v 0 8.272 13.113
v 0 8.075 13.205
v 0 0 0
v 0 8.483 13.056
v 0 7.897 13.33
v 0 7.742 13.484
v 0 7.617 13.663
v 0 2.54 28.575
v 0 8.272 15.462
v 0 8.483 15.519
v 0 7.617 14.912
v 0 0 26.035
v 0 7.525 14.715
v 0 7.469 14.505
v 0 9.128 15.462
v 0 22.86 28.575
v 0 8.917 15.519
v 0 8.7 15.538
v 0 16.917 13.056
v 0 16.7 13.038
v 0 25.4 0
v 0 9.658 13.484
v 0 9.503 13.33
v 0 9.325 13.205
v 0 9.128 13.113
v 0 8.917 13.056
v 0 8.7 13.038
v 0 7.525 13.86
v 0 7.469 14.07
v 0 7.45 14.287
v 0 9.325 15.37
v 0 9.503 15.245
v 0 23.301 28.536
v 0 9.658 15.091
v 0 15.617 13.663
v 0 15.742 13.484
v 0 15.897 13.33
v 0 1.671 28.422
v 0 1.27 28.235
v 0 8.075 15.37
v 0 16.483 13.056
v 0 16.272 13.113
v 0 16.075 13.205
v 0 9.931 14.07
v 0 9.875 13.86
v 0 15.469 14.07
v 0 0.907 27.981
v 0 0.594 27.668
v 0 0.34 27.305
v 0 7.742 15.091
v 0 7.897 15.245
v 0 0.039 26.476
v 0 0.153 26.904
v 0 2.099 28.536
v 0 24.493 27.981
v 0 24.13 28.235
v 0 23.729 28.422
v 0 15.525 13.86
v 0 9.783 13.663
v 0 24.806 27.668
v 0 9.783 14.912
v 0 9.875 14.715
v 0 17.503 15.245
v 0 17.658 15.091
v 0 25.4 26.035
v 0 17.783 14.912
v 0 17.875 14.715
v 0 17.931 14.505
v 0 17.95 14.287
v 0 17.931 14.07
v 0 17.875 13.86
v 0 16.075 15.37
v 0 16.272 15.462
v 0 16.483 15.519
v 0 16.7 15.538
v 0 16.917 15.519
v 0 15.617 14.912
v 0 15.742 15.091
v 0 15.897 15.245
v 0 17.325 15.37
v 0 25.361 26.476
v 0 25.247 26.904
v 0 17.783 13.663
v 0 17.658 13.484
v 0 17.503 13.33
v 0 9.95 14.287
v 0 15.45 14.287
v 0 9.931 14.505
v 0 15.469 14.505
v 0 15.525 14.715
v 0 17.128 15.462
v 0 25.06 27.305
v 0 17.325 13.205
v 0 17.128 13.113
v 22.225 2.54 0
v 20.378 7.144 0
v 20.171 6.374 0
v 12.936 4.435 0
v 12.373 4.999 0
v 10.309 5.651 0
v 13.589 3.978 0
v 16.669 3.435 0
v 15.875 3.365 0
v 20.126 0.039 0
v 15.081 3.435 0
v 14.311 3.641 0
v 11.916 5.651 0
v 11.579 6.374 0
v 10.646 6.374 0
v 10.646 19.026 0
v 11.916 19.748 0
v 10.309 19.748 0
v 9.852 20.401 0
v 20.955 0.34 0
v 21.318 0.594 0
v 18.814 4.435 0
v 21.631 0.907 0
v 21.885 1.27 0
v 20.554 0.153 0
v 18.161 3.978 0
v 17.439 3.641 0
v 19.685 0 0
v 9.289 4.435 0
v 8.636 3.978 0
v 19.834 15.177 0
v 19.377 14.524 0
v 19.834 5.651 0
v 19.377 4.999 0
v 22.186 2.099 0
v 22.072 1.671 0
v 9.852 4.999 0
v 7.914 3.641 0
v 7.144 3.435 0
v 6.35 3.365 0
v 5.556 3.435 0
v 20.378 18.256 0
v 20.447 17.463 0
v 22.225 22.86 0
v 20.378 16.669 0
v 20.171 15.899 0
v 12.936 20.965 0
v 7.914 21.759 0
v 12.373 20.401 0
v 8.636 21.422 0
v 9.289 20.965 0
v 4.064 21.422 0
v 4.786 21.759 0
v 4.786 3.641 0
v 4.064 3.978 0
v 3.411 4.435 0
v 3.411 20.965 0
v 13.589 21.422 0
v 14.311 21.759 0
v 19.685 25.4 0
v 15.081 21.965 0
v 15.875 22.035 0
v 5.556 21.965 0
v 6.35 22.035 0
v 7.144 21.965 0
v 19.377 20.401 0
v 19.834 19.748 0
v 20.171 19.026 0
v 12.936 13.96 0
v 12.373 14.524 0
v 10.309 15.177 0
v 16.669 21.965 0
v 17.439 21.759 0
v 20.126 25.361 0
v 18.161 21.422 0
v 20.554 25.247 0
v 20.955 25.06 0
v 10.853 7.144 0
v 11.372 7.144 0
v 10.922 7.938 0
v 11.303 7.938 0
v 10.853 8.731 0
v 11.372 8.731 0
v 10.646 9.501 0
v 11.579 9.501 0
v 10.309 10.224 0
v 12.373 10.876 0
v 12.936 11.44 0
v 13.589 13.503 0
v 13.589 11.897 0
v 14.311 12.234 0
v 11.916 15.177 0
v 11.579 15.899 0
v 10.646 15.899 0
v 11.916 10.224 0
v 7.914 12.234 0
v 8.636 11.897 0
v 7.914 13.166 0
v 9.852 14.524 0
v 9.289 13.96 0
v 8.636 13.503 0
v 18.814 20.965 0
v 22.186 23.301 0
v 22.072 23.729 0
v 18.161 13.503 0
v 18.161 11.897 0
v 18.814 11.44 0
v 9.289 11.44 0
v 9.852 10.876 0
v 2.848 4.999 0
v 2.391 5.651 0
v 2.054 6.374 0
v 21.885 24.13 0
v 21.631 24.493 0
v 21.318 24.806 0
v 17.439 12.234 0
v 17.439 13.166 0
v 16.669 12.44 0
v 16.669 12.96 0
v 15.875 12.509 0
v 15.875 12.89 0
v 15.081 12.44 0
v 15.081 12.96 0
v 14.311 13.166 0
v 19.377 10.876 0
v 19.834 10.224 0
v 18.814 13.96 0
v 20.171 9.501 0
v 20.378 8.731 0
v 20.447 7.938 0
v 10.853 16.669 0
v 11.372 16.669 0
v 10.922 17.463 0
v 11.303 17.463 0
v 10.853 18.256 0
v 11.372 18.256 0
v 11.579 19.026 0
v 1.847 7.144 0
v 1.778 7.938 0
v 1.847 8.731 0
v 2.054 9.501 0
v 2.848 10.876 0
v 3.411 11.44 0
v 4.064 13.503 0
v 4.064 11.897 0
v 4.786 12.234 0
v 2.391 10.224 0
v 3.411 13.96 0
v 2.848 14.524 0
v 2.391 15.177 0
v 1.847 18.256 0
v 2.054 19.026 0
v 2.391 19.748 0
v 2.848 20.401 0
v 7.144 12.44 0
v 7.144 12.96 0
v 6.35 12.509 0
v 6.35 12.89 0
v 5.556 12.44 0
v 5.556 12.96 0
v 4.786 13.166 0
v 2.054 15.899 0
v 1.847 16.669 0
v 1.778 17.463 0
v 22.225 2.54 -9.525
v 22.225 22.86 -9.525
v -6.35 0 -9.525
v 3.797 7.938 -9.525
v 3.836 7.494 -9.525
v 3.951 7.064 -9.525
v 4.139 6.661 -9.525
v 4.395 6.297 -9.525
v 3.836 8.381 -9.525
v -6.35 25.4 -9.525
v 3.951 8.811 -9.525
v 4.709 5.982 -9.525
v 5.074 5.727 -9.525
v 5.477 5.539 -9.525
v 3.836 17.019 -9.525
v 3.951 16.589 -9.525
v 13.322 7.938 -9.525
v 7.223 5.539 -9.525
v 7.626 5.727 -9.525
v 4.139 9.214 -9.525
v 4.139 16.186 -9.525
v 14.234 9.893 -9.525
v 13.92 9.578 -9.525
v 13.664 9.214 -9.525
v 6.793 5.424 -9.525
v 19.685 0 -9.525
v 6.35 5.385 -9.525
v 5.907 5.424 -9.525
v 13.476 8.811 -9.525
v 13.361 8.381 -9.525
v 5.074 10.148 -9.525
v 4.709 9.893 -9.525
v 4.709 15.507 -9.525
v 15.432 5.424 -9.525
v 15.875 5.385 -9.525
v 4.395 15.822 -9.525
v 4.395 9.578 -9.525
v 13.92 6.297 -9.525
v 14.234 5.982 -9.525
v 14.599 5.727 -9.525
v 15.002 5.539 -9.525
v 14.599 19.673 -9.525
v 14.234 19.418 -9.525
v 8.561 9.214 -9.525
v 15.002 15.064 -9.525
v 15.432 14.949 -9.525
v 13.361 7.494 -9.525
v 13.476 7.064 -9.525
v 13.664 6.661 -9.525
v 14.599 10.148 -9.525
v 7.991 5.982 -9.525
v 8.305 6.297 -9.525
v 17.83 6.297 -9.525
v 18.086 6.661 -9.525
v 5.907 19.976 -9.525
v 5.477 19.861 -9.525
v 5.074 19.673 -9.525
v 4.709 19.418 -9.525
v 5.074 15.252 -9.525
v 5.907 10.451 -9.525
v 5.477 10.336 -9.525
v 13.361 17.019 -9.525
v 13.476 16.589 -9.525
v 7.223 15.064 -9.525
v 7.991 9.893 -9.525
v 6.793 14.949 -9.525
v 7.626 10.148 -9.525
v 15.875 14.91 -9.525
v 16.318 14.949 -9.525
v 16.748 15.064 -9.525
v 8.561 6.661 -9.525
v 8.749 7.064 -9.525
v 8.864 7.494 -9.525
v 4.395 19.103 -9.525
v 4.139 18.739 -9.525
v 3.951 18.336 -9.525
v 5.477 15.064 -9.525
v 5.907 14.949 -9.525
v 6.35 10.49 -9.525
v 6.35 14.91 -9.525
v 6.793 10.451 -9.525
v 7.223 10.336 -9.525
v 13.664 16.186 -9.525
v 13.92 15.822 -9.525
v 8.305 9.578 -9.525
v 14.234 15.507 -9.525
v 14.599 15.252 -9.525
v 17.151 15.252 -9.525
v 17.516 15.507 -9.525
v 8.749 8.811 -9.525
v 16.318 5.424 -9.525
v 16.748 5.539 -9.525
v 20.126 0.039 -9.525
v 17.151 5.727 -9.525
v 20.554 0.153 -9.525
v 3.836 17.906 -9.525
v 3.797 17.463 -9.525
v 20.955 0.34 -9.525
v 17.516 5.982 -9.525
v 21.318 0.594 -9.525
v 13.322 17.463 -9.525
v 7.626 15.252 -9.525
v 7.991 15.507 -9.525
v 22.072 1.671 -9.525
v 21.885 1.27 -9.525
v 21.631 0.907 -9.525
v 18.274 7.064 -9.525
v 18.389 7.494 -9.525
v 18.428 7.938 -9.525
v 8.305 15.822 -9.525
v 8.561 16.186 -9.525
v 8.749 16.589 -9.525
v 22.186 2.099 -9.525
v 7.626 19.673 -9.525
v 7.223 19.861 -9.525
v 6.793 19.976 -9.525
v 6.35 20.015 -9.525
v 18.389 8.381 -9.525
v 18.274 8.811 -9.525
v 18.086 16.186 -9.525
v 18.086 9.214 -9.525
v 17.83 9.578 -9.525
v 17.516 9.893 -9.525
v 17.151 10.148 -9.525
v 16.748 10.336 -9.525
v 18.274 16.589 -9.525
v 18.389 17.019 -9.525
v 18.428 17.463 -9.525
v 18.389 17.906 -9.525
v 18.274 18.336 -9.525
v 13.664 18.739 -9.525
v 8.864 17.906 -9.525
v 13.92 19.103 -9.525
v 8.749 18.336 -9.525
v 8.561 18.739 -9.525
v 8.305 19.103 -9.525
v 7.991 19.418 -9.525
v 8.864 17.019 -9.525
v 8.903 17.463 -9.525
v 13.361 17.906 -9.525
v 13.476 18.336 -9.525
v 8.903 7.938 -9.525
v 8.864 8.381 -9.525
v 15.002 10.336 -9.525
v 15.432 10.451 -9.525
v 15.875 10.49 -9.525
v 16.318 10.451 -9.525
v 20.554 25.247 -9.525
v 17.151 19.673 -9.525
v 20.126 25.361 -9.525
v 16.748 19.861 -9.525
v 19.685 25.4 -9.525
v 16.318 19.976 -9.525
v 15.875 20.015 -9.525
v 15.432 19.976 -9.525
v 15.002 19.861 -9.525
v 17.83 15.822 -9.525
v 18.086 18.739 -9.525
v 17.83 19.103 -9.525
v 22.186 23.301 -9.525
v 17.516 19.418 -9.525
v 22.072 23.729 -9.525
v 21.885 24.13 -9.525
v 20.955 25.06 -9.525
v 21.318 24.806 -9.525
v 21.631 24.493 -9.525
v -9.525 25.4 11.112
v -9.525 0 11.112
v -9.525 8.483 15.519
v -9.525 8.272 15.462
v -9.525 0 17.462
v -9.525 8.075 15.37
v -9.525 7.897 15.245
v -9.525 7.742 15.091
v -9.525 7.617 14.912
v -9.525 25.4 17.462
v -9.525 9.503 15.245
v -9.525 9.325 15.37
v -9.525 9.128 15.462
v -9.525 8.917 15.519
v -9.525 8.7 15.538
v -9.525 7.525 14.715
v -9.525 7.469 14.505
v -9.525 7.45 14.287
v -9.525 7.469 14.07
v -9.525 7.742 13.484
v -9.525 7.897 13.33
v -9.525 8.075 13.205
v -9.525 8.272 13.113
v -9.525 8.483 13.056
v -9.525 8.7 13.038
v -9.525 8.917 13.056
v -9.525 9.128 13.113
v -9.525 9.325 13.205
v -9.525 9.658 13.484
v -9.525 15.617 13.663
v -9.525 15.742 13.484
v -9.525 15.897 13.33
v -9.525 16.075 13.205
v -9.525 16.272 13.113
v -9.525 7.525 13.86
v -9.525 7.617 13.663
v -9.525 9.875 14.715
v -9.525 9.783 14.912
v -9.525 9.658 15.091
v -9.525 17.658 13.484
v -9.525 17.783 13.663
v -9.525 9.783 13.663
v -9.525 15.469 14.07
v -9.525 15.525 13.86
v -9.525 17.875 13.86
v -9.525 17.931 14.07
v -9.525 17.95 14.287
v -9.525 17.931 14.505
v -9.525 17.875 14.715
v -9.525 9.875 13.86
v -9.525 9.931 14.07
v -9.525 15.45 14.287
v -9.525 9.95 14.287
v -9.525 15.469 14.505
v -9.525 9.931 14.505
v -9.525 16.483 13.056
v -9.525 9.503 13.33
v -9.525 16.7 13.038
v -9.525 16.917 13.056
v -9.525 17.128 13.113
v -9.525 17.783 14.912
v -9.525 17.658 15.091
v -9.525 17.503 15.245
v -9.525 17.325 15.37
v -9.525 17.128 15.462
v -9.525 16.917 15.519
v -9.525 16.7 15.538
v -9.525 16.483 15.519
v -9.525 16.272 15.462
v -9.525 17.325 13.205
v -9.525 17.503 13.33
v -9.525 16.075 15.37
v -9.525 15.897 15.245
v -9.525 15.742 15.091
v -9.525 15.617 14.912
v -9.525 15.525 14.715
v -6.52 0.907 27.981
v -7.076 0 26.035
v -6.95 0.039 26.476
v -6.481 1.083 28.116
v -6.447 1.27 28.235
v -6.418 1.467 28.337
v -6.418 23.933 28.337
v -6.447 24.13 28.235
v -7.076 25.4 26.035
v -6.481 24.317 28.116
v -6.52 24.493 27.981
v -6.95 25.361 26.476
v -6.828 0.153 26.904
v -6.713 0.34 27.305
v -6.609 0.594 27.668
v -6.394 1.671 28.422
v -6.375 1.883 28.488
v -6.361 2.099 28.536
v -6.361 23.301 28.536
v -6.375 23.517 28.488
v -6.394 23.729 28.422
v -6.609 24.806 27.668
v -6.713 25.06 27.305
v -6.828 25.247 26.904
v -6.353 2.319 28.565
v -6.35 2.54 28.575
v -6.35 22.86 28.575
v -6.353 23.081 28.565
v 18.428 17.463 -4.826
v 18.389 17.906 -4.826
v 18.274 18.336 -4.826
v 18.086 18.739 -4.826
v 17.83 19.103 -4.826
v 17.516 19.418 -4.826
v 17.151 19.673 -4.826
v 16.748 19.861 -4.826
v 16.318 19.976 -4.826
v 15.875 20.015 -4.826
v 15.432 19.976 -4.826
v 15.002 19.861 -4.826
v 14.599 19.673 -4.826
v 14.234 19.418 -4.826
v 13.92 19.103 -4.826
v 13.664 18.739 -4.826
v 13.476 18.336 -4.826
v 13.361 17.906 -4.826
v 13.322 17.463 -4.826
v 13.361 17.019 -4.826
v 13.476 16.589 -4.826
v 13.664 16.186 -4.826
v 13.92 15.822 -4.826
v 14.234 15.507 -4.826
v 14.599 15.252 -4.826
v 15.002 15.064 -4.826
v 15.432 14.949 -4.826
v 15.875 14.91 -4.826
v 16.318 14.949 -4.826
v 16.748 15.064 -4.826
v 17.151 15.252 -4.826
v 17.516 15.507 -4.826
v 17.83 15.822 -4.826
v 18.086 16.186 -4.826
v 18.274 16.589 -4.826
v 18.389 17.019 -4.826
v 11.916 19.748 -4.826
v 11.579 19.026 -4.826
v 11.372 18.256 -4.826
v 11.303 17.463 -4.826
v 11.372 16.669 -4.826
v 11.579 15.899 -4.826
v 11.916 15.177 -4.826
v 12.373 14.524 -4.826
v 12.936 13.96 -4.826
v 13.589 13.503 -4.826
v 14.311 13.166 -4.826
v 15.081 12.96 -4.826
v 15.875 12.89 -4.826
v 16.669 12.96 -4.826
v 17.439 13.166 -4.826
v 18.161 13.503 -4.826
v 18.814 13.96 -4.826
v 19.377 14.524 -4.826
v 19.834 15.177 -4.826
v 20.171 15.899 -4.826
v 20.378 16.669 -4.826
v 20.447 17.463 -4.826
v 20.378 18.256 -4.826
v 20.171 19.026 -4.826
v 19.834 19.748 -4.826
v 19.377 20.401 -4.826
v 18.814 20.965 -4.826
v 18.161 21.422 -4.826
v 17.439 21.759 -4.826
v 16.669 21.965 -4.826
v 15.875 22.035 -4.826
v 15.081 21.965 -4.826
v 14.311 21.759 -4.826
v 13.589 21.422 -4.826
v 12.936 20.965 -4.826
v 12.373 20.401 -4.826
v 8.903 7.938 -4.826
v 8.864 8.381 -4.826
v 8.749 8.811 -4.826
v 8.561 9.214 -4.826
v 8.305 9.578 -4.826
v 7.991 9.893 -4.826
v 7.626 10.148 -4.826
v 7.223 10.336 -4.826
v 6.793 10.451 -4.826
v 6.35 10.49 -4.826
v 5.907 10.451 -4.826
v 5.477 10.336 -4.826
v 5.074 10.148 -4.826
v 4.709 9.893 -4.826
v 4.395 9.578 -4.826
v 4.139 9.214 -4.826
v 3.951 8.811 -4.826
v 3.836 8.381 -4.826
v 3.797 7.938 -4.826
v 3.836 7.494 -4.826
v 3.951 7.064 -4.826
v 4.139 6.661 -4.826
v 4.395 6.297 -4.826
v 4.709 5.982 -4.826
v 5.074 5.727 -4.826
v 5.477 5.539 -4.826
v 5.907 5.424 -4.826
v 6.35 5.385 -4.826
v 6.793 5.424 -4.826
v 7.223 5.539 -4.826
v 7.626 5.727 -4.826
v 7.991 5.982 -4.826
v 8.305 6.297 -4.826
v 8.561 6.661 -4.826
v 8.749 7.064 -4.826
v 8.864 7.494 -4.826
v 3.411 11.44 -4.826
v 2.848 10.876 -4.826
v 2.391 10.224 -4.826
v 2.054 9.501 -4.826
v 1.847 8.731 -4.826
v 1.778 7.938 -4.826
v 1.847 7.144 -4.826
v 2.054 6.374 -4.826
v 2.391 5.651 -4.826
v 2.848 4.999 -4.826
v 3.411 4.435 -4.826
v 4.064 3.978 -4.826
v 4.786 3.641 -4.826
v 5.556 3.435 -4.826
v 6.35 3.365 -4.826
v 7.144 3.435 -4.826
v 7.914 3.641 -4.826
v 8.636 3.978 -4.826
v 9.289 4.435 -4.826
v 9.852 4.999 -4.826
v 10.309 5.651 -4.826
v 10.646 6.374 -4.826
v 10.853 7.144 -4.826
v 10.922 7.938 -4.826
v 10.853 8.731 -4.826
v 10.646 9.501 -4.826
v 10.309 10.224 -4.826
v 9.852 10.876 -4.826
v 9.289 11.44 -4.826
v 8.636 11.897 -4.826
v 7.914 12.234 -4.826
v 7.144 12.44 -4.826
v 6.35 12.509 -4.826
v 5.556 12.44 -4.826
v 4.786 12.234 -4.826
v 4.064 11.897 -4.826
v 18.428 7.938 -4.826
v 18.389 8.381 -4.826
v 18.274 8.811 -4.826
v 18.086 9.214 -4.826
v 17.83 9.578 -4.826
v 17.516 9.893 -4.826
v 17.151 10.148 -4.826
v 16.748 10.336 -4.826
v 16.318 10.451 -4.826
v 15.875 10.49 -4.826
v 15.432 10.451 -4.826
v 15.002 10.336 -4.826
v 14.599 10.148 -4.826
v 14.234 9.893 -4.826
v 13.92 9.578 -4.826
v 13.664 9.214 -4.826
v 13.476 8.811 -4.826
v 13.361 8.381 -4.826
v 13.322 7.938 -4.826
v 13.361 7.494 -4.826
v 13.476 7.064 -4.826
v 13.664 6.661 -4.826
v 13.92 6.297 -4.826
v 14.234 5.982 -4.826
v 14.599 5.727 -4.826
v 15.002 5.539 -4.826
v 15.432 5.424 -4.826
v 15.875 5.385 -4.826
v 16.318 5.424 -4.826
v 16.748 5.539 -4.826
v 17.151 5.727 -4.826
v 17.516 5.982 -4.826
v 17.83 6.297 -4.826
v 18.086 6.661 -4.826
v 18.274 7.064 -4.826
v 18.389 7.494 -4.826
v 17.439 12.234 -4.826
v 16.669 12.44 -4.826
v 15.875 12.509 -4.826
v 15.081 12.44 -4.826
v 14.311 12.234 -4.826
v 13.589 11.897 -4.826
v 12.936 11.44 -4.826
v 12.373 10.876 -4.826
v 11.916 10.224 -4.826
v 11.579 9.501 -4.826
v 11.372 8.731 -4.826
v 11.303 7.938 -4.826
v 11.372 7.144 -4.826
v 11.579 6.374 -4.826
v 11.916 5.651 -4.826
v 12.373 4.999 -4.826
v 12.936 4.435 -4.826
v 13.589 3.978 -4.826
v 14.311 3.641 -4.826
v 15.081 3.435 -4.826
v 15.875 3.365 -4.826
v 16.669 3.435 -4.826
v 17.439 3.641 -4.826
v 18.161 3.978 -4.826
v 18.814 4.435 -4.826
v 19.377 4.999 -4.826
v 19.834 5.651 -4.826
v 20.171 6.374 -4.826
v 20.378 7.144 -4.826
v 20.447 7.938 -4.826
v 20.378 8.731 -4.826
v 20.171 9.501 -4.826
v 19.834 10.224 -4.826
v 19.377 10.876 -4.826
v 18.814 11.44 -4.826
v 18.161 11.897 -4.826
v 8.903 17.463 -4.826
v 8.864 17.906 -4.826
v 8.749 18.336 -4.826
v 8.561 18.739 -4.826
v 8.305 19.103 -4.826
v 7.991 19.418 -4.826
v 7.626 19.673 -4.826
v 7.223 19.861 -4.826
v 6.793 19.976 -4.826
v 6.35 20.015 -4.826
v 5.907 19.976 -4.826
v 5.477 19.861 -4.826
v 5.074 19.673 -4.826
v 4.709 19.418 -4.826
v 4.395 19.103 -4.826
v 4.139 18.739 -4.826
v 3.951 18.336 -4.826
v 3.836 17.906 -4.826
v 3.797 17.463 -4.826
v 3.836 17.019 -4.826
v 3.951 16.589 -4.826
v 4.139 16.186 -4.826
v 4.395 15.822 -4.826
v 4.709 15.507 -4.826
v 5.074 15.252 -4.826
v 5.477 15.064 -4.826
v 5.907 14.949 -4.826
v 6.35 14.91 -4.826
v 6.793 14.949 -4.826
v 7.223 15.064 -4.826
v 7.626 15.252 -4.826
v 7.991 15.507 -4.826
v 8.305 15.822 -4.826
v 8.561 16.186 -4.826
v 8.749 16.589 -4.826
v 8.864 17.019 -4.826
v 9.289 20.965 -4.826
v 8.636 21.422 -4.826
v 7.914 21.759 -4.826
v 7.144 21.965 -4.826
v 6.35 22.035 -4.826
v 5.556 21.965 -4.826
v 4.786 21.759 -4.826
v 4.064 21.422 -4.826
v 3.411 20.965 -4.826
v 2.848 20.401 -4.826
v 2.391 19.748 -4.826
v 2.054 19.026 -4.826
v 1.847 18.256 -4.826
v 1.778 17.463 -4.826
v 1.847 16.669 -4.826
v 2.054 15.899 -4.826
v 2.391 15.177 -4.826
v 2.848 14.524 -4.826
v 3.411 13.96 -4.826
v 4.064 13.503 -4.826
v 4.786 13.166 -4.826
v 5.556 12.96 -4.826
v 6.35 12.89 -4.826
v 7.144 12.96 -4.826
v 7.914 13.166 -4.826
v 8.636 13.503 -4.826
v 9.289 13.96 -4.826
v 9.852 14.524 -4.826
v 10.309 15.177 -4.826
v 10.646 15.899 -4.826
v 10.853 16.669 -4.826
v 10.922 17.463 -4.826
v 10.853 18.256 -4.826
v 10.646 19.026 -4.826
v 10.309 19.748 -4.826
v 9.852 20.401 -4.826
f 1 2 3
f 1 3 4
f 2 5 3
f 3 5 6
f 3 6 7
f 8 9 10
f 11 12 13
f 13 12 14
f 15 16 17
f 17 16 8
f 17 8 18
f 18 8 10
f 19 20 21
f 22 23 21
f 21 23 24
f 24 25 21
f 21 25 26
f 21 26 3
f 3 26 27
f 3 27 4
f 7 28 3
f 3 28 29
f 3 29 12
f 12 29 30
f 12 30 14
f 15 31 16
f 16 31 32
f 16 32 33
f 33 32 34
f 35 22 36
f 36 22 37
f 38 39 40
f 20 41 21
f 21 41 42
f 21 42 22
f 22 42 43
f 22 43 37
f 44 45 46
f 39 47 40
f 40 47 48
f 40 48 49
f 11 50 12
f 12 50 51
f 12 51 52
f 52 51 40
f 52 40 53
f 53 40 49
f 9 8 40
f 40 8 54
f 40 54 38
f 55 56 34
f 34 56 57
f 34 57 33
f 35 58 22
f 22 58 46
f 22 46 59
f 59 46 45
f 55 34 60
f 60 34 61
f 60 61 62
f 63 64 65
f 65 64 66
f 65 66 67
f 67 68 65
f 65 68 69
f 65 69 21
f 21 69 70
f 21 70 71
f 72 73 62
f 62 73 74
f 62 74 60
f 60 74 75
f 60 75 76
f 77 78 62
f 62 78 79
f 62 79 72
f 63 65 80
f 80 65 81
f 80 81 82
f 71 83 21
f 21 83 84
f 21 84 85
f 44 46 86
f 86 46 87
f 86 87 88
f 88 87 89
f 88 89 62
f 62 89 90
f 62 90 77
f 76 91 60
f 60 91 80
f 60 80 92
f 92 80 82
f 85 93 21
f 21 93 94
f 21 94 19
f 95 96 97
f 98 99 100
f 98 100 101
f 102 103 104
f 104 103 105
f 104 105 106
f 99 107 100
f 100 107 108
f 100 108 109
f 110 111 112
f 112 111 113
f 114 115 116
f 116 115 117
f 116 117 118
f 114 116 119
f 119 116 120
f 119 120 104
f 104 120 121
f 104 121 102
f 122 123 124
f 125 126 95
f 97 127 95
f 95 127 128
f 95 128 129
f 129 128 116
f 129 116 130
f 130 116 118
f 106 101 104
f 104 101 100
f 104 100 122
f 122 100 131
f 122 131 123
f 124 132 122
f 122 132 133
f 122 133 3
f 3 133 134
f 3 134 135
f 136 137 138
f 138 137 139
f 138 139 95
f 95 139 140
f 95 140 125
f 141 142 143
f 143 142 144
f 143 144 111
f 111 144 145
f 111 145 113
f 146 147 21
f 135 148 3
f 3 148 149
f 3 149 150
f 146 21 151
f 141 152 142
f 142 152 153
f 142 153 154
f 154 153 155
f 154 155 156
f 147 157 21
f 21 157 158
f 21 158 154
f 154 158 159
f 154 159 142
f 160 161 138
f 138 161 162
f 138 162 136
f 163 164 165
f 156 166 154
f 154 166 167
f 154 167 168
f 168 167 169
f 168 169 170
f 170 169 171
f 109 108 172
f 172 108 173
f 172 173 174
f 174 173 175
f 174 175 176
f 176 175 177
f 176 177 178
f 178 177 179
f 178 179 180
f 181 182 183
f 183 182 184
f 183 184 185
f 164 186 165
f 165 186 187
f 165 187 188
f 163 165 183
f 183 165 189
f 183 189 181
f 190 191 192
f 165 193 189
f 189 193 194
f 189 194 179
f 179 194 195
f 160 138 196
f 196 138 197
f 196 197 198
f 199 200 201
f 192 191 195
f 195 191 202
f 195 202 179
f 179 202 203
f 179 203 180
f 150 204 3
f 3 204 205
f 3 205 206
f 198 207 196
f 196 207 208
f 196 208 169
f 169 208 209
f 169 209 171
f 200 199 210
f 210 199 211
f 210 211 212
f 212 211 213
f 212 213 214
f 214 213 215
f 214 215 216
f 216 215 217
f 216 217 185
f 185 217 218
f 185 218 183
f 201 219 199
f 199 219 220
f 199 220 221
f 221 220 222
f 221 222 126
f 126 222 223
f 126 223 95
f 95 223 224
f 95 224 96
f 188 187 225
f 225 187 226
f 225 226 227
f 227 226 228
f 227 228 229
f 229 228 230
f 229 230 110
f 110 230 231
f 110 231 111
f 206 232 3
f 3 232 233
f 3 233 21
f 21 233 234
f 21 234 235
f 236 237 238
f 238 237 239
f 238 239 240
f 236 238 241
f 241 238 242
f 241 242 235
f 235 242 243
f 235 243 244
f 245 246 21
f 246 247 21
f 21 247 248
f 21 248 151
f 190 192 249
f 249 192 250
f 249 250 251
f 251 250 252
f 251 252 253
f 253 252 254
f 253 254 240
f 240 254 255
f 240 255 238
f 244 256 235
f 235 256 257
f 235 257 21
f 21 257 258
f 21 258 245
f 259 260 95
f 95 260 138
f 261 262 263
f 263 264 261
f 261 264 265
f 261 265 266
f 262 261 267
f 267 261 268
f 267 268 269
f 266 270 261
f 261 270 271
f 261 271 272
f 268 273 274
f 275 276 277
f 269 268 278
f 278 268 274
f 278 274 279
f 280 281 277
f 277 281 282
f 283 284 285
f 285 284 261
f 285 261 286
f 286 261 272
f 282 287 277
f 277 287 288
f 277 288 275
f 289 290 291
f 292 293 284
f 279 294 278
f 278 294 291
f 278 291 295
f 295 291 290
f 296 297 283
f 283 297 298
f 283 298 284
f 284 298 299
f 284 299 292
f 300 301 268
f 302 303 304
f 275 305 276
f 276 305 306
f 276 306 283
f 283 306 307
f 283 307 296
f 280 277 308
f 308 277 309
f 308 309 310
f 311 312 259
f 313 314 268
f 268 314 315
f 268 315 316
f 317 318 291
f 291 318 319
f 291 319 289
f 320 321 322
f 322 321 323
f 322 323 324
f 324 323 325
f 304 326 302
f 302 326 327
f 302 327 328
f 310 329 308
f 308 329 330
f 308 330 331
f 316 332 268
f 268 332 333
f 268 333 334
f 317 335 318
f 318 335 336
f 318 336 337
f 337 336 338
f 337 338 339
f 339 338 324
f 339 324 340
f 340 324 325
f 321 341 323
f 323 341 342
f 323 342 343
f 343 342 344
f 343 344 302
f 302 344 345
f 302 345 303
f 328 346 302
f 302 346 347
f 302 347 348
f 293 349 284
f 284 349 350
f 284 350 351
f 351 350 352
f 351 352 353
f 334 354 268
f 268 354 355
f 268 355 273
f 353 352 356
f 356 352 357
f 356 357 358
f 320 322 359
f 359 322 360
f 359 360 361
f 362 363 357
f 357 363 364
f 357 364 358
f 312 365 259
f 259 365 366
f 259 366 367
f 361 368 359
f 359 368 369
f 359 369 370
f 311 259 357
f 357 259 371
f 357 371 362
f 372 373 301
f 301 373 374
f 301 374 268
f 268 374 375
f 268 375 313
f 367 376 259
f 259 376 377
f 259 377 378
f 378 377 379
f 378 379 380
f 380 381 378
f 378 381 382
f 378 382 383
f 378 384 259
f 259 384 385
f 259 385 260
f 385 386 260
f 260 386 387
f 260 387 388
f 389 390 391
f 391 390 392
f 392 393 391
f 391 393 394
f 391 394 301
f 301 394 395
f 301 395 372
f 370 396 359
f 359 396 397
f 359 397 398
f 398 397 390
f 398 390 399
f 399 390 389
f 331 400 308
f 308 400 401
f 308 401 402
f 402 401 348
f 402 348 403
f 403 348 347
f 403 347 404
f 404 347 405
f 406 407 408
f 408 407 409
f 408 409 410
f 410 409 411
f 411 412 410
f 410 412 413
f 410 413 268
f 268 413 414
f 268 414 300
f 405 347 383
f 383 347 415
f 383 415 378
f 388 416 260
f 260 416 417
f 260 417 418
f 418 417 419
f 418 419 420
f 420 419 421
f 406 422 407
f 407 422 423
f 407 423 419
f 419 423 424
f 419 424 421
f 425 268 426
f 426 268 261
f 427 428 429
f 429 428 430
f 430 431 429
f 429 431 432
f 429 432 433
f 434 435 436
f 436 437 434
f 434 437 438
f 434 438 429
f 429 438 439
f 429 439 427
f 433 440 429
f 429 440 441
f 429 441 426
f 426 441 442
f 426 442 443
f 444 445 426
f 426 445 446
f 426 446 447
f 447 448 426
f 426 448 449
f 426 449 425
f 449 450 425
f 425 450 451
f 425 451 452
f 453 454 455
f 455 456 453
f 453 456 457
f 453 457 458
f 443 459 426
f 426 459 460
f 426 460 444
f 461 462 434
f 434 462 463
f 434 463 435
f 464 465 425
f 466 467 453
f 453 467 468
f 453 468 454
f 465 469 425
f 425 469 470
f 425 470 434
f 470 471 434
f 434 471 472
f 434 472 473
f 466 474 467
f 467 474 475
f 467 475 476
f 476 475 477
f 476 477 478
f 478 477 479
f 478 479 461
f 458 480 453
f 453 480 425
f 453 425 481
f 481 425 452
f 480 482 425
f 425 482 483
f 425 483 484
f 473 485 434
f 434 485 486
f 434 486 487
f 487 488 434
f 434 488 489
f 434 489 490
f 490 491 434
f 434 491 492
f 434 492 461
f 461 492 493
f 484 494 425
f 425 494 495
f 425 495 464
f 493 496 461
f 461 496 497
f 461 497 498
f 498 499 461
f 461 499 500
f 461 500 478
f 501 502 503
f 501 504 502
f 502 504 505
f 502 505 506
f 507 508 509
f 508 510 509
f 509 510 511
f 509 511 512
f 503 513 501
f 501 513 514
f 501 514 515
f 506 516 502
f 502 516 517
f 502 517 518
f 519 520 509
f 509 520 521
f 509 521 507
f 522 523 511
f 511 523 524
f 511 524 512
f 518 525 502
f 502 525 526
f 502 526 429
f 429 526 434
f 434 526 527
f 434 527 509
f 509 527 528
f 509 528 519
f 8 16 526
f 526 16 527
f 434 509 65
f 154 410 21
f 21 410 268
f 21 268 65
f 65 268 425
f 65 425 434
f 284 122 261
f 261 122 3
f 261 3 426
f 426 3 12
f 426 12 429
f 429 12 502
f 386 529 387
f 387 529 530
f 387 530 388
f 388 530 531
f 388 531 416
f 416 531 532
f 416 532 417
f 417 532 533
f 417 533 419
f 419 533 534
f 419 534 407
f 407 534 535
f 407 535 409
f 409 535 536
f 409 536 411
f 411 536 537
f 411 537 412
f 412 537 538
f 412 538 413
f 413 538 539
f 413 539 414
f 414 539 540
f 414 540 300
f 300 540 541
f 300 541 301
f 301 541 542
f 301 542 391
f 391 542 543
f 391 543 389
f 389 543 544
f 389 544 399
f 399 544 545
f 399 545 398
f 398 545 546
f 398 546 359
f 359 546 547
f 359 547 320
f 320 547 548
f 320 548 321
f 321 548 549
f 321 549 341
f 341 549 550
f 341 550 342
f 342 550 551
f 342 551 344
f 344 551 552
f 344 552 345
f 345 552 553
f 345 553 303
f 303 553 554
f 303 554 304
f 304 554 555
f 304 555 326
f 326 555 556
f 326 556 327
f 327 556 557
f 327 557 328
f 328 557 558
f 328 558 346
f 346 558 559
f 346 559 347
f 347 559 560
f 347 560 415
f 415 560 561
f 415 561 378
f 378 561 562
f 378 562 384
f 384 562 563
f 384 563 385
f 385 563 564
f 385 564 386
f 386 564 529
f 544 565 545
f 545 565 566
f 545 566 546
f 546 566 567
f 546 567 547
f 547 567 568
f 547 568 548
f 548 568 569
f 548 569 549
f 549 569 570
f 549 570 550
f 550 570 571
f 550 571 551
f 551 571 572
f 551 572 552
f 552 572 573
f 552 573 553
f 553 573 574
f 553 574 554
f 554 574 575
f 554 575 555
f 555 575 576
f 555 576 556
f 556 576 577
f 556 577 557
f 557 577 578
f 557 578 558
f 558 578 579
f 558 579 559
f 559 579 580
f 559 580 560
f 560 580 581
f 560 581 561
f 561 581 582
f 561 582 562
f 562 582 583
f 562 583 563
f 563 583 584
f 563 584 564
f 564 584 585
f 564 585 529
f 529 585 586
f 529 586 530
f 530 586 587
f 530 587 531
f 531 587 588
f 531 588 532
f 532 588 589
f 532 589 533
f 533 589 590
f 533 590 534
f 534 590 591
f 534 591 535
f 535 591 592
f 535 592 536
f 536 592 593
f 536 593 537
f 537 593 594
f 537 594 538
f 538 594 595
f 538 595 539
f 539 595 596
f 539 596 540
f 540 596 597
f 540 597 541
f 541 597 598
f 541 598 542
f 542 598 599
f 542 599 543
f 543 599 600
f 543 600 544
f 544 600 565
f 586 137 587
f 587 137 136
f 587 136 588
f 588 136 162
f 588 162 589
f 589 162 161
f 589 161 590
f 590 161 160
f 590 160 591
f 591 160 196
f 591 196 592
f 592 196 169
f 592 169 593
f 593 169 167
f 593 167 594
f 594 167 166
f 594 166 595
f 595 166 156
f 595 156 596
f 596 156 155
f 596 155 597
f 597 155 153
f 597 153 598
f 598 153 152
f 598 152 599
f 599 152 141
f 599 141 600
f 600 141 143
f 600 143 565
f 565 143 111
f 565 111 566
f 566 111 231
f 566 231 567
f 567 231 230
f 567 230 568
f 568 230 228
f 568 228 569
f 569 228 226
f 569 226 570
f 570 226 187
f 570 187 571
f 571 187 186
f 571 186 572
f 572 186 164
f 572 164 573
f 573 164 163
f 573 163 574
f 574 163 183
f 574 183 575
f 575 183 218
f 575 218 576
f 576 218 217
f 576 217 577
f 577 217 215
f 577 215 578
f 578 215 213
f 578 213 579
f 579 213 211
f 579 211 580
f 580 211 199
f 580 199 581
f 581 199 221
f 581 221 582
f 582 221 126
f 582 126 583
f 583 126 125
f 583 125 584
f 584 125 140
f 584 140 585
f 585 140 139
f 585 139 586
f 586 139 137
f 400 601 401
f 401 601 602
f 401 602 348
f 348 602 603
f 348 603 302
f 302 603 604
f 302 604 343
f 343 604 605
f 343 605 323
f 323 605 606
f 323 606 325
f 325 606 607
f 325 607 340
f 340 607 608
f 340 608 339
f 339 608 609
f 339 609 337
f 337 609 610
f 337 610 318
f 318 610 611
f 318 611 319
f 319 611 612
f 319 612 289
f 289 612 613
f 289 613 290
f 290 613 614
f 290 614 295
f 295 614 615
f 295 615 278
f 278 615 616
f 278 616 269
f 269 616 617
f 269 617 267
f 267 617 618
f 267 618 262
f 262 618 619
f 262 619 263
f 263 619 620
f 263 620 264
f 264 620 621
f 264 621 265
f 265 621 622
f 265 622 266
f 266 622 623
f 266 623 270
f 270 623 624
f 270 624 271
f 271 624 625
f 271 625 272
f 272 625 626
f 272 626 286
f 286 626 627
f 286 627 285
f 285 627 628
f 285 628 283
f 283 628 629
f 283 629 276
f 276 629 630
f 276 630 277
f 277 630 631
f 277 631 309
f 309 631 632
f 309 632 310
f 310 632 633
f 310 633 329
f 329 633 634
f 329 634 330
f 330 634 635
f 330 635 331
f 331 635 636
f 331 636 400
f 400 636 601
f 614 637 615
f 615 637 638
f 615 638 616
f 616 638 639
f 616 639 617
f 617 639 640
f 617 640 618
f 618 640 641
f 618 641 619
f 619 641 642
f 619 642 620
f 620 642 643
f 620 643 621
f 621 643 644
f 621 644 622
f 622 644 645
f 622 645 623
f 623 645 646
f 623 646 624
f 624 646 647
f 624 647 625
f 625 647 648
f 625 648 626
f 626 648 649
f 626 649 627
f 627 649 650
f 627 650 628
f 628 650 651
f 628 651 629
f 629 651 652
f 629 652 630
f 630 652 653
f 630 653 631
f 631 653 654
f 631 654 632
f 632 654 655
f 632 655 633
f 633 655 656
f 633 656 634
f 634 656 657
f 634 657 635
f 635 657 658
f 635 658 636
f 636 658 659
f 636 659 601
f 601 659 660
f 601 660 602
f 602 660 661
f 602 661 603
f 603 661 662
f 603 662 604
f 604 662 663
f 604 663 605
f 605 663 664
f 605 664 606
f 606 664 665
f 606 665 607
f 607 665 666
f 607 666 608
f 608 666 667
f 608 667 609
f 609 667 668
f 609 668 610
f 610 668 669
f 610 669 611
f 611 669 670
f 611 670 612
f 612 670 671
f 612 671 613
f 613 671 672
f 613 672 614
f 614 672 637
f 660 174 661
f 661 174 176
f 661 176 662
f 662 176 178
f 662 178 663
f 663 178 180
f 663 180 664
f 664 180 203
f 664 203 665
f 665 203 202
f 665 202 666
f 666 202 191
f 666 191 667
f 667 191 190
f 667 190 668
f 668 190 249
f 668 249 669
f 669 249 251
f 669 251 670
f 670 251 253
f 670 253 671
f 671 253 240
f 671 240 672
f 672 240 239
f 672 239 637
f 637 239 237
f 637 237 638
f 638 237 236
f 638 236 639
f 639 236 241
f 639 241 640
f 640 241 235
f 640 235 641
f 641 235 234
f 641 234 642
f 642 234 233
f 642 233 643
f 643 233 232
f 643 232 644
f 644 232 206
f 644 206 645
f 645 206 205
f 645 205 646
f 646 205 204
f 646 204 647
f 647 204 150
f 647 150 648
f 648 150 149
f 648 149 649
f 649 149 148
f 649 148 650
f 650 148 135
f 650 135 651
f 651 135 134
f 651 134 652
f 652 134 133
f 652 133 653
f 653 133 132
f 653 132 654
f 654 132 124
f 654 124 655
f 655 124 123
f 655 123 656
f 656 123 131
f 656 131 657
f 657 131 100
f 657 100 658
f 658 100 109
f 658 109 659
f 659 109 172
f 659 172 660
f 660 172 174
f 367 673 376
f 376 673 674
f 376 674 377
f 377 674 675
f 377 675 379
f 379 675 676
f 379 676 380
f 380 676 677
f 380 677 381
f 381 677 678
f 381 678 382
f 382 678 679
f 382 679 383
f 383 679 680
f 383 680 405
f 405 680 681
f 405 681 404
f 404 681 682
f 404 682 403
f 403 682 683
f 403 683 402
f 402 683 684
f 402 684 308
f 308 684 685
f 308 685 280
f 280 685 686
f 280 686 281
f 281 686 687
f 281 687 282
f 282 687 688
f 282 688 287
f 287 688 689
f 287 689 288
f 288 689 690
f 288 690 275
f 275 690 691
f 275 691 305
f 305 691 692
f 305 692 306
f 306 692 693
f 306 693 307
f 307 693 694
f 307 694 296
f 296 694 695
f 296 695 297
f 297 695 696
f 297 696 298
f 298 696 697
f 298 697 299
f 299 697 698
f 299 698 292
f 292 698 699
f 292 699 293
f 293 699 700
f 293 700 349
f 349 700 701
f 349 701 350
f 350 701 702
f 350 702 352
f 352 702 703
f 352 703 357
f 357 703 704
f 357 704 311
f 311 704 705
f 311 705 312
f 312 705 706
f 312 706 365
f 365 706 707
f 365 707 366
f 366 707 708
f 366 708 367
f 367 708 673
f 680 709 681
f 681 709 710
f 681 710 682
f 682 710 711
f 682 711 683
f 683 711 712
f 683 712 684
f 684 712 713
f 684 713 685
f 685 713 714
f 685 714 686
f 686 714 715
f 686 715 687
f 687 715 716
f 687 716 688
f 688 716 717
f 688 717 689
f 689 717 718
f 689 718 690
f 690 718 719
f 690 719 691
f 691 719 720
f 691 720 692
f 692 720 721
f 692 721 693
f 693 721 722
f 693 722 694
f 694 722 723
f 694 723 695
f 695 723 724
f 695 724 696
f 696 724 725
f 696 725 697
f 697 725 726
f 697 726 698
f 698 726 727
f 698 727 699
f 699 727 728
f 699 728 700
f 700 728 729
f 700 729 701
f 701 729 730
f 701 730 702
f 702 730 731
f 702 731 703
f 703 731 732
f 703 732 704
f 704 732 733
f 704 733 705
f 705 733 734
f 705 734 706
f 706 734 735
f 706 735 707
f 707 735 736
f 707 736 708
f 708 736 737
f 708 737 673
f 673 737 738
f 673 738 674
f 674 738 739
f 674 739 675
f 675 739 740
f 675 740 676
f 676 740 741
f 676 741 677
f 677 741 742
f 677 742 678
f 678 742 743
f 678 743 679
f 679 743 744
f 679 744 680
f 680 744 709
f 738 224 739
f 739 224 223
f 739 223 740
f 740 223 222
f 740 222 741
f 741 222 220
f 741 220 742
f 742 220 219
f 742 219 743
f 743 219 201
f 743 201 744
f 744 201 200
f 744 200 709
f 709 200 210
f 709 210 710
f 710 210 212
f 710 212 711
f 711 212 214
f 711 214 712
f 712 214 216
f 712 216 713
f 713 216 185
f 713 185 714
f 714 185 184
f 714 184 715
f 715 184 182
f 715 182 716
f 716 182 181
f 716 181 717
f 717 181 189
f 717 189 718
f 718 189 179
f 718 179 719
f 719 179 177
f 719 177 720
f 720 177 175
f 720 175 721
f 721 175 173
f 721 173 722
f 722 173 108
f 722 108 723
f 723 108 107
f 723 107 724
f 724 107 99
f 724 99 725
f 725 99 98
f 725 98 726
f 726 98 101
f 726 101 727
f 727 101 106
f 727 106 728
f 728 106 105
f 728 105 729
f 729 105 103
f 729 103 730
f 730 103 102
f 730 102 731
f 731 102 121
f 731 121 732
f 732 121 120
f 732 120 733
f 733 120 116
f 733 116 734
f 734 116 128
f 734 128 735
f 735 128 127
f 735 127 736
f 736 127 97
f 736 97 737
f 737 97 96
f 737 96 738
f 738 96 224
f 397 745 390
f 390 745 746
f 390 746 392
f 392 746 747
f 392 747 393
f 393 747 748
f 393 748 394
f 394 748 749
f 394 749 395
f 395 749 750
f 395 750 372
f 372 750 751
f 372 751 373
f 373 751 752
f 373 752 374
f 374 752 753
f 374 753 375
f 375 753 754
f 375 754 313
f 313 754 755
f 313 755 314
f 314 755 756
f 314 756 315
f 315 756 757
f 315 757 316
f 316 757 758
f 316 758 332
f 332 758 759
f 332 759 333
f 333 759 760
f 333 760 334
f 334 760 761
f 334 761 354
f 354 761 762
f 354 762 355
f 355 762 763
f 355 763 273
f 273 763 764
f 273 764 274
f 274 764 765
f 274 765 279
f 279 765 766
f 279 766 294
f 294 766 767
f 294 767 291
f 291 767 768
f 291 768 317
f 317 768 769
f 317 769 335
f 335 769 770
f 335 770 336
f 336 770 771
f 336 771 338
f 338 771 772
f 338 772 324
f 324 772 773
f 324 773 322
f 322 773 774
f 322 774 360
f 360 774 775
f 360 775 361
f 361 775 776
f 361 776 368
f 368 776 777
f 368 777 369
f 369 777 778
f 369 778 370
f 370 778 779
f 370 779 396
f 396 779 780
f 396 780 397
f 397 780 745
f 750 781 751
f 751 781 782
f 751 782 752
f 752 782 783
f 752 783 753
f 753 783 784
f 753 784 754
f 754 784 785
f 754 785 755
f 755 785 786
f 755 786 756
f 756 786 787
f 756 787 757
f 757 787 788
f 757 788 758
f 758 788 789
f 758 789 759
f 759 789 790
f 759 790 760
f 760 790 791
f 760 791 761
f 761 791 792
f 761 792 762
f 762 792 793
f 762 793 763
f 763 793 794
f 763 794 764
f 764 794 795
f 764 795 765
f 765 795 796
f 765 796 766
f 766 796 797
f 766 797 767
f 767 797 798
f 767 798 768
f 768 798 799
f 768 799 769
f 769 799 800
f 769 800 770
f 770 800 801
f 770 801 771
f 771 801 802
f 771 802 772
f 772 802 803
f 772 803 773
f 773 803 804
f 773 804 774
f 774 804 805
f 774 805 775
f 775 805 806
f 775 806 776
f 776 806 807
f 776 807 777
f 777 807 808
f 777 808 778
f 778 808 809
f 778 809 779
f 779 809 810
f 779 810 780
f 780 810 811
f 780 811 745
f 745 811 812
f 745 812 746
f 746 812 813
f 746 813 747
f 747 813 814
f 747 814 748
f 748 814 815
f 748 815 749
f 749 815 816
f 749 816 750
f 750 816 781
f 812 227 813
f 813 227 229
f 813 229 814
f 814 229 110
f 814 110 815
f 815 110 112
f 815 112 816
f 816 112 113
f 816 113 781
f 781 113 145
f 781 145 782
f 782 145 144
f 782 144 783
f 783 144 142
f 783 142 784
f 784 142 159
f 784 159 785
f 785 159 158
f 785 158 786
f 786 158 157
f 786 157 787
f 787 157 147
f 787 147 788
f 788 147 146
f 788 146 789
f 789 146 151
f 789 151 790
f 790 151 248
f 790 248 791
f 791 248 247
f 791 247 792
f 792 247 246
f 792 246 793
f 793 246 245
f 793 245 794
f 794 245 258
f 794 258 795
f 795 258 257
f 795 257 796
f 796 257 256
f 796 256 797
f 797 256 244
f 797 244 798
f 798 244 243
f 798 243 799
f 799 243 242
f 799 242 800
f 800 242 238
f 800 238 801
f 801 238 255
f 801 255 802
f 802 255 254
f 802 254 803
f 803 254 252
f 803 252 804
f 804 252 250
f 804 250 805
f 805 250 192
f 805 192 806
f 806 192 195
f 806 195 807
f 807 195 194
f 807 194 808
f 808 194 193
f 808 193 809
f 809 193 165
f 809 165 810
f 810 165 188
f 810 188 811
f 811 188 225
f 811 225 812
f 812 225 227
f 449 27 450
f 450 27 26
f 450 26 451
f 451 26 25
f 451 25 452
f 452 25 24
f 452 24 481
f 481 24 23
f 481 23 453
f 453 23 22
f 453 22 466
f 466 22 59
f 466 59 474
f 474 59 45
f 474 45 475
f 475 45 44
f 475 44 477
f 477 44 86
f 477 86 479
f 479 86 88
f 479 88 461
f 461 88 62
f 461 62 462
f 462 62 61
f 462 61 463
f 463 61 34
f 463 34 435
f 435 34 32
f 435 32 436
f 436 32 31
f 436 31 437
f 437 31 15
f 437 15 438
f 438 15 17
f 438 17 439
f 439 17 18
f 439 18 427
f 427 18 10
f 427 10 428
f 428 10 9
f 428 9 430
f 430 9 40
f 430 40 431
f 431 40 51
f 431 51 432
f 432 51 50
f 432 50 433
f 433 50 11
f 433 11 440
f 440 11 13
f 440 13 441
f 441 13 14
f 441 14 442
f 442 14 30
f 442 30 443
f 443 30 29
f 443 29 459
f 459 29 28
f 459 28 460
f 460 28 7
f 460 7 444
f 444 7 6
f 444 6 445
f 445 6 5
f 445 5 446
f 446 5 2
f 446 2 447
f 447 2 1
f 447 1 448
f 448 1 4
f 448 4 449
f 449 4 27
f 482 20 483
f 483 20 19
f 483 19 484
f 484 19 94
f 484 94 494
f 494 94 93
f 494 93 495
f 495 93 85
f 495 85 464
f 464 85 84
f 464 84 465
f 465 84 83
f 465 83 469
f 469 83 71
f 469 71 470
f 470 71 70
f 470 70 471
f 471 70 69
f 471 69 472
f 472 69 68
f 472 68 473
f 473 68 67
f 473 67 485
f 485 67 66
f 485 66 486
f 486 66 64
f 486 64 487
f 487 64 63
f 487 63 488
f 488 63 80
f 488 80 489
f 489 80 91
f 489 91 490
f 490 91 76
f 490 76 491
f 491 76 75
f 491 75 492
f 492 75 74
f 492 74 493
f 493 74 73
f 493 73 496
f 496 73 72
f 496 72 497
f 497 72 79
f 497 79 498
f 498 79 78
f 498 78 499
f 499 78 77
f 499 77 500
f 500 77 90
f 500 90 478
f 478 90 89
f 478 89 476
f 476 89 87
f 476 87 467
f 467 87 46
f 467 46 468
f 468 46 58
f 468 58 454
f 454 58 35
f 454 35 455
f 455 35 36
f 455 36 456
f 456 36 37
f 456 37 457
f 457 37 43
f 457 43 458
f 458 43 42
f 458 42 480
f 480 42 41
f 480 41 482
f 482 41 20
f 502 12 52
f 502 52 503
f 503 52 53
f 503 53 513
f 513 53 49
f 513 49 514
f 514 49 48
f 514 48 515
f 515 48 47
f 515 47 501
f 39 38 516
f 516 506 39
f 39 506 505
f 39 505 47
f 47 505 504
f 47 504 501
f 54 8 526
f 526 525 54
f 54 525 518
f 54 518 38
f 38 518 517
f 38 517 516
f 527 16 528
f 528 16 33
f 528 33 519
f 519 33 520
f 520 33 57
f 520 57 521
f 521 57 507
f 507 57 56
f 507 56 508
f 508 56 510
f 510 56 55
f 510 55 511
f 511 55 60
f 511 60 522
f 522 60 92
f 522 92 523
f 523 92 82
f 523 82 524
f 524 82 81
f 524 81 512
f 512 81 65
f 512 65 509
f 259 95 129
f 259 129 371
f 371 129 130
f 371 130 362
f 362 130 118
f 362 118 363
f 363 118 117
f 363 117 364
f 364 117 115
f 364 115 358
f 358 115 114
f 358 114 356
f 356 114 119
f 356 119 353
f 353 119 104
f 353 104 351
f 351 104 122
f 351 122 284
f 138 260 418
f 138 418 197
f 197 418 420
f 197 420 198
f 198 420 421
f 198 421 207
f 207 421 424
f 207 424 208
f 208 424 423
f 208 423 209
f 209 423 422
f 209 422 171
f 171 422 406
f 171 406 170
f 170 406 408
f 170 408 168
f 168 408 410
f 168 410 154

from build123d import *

# Parameters (mm, degrees)
BOSS_EXTRUDE1_DEPTH                             = 25.4
CBORE_FOR_10_SOCKET_HEAD_CAP_SCREW1_D           = 5.1054
CBORE_FOR_10_SOCKET_HEAD_CAP_SCREW1_CBORE_D     = 9.144
CBORE_FOR_10_SOCKET_HEAD_CAP_SCREW1_CBORE_DEPTH = 4.826
M3X0_5_TAPPED_HOLE1_D                           = 2.5
FILLET1_R                                       = 2.54


with BuildPart() as part:
    # Sketch1 → Boss-Extrude1 (new body)
    with BuildSketch(Plane(origin=(0, 0, 0), x_dir=(1, 0, 0), z_dir=(0, 1, 0))):
        Polygon((0, 0), (22.225, 0), (22.225, 9.525), (-6.35, 9.525), (-9.525, -11.1125), (-9.525, -17.4625), (-6.35, -28.575), (0, -28.575), align=None)
    extrude(amount=BOSS_EXTRUDE1_DEPTH)

    # CBORE for #10 Socket Head Cap Screw1 (through all)
    with Locations(Plane.XY):
        with Locations((6.35, 17.4625), (15.875, 7.9375), (6.35, 7.9375), (15.875, 17.4625)):
            CounterBoreHole(CBORE_FOR_10_SOCKET_HEAD_CAP_SCREW1_D / 2, CBORE_FOR_10_SOCKET_HEAD_CAP_SCREW1_CBORE_D / 2, CBORE_FOR_10_SOCKET_HEAD_CAP_SCREW1_CBORE_DEPTH)

    # M3x0.5 Tapped Hole1 (through all)
    with Locations(Plane(origin=(0, 0, 0), x_dir=(0, 0, -1), z_dir=(1, 0, 0))):
        with Locations((-14.2875, 16.7), (-14.2875, 8.7)):
            Hole(M3X0_5_TAPPED_HOLE1_D / 2)

    # Fillet1
    fillet1_edges = [part.edges().sort_by_distance(p)[0] for p in [
        (22.225, 0, -4.7625),
        (22.225, 25.4, -4.7625),
        (-3.175, 25.4, 28.575),
        (-3.175, 0, 28.575),
    ]]
    fillet(fillet1_edges, radius=FILLET1_R)


solid = part.part
